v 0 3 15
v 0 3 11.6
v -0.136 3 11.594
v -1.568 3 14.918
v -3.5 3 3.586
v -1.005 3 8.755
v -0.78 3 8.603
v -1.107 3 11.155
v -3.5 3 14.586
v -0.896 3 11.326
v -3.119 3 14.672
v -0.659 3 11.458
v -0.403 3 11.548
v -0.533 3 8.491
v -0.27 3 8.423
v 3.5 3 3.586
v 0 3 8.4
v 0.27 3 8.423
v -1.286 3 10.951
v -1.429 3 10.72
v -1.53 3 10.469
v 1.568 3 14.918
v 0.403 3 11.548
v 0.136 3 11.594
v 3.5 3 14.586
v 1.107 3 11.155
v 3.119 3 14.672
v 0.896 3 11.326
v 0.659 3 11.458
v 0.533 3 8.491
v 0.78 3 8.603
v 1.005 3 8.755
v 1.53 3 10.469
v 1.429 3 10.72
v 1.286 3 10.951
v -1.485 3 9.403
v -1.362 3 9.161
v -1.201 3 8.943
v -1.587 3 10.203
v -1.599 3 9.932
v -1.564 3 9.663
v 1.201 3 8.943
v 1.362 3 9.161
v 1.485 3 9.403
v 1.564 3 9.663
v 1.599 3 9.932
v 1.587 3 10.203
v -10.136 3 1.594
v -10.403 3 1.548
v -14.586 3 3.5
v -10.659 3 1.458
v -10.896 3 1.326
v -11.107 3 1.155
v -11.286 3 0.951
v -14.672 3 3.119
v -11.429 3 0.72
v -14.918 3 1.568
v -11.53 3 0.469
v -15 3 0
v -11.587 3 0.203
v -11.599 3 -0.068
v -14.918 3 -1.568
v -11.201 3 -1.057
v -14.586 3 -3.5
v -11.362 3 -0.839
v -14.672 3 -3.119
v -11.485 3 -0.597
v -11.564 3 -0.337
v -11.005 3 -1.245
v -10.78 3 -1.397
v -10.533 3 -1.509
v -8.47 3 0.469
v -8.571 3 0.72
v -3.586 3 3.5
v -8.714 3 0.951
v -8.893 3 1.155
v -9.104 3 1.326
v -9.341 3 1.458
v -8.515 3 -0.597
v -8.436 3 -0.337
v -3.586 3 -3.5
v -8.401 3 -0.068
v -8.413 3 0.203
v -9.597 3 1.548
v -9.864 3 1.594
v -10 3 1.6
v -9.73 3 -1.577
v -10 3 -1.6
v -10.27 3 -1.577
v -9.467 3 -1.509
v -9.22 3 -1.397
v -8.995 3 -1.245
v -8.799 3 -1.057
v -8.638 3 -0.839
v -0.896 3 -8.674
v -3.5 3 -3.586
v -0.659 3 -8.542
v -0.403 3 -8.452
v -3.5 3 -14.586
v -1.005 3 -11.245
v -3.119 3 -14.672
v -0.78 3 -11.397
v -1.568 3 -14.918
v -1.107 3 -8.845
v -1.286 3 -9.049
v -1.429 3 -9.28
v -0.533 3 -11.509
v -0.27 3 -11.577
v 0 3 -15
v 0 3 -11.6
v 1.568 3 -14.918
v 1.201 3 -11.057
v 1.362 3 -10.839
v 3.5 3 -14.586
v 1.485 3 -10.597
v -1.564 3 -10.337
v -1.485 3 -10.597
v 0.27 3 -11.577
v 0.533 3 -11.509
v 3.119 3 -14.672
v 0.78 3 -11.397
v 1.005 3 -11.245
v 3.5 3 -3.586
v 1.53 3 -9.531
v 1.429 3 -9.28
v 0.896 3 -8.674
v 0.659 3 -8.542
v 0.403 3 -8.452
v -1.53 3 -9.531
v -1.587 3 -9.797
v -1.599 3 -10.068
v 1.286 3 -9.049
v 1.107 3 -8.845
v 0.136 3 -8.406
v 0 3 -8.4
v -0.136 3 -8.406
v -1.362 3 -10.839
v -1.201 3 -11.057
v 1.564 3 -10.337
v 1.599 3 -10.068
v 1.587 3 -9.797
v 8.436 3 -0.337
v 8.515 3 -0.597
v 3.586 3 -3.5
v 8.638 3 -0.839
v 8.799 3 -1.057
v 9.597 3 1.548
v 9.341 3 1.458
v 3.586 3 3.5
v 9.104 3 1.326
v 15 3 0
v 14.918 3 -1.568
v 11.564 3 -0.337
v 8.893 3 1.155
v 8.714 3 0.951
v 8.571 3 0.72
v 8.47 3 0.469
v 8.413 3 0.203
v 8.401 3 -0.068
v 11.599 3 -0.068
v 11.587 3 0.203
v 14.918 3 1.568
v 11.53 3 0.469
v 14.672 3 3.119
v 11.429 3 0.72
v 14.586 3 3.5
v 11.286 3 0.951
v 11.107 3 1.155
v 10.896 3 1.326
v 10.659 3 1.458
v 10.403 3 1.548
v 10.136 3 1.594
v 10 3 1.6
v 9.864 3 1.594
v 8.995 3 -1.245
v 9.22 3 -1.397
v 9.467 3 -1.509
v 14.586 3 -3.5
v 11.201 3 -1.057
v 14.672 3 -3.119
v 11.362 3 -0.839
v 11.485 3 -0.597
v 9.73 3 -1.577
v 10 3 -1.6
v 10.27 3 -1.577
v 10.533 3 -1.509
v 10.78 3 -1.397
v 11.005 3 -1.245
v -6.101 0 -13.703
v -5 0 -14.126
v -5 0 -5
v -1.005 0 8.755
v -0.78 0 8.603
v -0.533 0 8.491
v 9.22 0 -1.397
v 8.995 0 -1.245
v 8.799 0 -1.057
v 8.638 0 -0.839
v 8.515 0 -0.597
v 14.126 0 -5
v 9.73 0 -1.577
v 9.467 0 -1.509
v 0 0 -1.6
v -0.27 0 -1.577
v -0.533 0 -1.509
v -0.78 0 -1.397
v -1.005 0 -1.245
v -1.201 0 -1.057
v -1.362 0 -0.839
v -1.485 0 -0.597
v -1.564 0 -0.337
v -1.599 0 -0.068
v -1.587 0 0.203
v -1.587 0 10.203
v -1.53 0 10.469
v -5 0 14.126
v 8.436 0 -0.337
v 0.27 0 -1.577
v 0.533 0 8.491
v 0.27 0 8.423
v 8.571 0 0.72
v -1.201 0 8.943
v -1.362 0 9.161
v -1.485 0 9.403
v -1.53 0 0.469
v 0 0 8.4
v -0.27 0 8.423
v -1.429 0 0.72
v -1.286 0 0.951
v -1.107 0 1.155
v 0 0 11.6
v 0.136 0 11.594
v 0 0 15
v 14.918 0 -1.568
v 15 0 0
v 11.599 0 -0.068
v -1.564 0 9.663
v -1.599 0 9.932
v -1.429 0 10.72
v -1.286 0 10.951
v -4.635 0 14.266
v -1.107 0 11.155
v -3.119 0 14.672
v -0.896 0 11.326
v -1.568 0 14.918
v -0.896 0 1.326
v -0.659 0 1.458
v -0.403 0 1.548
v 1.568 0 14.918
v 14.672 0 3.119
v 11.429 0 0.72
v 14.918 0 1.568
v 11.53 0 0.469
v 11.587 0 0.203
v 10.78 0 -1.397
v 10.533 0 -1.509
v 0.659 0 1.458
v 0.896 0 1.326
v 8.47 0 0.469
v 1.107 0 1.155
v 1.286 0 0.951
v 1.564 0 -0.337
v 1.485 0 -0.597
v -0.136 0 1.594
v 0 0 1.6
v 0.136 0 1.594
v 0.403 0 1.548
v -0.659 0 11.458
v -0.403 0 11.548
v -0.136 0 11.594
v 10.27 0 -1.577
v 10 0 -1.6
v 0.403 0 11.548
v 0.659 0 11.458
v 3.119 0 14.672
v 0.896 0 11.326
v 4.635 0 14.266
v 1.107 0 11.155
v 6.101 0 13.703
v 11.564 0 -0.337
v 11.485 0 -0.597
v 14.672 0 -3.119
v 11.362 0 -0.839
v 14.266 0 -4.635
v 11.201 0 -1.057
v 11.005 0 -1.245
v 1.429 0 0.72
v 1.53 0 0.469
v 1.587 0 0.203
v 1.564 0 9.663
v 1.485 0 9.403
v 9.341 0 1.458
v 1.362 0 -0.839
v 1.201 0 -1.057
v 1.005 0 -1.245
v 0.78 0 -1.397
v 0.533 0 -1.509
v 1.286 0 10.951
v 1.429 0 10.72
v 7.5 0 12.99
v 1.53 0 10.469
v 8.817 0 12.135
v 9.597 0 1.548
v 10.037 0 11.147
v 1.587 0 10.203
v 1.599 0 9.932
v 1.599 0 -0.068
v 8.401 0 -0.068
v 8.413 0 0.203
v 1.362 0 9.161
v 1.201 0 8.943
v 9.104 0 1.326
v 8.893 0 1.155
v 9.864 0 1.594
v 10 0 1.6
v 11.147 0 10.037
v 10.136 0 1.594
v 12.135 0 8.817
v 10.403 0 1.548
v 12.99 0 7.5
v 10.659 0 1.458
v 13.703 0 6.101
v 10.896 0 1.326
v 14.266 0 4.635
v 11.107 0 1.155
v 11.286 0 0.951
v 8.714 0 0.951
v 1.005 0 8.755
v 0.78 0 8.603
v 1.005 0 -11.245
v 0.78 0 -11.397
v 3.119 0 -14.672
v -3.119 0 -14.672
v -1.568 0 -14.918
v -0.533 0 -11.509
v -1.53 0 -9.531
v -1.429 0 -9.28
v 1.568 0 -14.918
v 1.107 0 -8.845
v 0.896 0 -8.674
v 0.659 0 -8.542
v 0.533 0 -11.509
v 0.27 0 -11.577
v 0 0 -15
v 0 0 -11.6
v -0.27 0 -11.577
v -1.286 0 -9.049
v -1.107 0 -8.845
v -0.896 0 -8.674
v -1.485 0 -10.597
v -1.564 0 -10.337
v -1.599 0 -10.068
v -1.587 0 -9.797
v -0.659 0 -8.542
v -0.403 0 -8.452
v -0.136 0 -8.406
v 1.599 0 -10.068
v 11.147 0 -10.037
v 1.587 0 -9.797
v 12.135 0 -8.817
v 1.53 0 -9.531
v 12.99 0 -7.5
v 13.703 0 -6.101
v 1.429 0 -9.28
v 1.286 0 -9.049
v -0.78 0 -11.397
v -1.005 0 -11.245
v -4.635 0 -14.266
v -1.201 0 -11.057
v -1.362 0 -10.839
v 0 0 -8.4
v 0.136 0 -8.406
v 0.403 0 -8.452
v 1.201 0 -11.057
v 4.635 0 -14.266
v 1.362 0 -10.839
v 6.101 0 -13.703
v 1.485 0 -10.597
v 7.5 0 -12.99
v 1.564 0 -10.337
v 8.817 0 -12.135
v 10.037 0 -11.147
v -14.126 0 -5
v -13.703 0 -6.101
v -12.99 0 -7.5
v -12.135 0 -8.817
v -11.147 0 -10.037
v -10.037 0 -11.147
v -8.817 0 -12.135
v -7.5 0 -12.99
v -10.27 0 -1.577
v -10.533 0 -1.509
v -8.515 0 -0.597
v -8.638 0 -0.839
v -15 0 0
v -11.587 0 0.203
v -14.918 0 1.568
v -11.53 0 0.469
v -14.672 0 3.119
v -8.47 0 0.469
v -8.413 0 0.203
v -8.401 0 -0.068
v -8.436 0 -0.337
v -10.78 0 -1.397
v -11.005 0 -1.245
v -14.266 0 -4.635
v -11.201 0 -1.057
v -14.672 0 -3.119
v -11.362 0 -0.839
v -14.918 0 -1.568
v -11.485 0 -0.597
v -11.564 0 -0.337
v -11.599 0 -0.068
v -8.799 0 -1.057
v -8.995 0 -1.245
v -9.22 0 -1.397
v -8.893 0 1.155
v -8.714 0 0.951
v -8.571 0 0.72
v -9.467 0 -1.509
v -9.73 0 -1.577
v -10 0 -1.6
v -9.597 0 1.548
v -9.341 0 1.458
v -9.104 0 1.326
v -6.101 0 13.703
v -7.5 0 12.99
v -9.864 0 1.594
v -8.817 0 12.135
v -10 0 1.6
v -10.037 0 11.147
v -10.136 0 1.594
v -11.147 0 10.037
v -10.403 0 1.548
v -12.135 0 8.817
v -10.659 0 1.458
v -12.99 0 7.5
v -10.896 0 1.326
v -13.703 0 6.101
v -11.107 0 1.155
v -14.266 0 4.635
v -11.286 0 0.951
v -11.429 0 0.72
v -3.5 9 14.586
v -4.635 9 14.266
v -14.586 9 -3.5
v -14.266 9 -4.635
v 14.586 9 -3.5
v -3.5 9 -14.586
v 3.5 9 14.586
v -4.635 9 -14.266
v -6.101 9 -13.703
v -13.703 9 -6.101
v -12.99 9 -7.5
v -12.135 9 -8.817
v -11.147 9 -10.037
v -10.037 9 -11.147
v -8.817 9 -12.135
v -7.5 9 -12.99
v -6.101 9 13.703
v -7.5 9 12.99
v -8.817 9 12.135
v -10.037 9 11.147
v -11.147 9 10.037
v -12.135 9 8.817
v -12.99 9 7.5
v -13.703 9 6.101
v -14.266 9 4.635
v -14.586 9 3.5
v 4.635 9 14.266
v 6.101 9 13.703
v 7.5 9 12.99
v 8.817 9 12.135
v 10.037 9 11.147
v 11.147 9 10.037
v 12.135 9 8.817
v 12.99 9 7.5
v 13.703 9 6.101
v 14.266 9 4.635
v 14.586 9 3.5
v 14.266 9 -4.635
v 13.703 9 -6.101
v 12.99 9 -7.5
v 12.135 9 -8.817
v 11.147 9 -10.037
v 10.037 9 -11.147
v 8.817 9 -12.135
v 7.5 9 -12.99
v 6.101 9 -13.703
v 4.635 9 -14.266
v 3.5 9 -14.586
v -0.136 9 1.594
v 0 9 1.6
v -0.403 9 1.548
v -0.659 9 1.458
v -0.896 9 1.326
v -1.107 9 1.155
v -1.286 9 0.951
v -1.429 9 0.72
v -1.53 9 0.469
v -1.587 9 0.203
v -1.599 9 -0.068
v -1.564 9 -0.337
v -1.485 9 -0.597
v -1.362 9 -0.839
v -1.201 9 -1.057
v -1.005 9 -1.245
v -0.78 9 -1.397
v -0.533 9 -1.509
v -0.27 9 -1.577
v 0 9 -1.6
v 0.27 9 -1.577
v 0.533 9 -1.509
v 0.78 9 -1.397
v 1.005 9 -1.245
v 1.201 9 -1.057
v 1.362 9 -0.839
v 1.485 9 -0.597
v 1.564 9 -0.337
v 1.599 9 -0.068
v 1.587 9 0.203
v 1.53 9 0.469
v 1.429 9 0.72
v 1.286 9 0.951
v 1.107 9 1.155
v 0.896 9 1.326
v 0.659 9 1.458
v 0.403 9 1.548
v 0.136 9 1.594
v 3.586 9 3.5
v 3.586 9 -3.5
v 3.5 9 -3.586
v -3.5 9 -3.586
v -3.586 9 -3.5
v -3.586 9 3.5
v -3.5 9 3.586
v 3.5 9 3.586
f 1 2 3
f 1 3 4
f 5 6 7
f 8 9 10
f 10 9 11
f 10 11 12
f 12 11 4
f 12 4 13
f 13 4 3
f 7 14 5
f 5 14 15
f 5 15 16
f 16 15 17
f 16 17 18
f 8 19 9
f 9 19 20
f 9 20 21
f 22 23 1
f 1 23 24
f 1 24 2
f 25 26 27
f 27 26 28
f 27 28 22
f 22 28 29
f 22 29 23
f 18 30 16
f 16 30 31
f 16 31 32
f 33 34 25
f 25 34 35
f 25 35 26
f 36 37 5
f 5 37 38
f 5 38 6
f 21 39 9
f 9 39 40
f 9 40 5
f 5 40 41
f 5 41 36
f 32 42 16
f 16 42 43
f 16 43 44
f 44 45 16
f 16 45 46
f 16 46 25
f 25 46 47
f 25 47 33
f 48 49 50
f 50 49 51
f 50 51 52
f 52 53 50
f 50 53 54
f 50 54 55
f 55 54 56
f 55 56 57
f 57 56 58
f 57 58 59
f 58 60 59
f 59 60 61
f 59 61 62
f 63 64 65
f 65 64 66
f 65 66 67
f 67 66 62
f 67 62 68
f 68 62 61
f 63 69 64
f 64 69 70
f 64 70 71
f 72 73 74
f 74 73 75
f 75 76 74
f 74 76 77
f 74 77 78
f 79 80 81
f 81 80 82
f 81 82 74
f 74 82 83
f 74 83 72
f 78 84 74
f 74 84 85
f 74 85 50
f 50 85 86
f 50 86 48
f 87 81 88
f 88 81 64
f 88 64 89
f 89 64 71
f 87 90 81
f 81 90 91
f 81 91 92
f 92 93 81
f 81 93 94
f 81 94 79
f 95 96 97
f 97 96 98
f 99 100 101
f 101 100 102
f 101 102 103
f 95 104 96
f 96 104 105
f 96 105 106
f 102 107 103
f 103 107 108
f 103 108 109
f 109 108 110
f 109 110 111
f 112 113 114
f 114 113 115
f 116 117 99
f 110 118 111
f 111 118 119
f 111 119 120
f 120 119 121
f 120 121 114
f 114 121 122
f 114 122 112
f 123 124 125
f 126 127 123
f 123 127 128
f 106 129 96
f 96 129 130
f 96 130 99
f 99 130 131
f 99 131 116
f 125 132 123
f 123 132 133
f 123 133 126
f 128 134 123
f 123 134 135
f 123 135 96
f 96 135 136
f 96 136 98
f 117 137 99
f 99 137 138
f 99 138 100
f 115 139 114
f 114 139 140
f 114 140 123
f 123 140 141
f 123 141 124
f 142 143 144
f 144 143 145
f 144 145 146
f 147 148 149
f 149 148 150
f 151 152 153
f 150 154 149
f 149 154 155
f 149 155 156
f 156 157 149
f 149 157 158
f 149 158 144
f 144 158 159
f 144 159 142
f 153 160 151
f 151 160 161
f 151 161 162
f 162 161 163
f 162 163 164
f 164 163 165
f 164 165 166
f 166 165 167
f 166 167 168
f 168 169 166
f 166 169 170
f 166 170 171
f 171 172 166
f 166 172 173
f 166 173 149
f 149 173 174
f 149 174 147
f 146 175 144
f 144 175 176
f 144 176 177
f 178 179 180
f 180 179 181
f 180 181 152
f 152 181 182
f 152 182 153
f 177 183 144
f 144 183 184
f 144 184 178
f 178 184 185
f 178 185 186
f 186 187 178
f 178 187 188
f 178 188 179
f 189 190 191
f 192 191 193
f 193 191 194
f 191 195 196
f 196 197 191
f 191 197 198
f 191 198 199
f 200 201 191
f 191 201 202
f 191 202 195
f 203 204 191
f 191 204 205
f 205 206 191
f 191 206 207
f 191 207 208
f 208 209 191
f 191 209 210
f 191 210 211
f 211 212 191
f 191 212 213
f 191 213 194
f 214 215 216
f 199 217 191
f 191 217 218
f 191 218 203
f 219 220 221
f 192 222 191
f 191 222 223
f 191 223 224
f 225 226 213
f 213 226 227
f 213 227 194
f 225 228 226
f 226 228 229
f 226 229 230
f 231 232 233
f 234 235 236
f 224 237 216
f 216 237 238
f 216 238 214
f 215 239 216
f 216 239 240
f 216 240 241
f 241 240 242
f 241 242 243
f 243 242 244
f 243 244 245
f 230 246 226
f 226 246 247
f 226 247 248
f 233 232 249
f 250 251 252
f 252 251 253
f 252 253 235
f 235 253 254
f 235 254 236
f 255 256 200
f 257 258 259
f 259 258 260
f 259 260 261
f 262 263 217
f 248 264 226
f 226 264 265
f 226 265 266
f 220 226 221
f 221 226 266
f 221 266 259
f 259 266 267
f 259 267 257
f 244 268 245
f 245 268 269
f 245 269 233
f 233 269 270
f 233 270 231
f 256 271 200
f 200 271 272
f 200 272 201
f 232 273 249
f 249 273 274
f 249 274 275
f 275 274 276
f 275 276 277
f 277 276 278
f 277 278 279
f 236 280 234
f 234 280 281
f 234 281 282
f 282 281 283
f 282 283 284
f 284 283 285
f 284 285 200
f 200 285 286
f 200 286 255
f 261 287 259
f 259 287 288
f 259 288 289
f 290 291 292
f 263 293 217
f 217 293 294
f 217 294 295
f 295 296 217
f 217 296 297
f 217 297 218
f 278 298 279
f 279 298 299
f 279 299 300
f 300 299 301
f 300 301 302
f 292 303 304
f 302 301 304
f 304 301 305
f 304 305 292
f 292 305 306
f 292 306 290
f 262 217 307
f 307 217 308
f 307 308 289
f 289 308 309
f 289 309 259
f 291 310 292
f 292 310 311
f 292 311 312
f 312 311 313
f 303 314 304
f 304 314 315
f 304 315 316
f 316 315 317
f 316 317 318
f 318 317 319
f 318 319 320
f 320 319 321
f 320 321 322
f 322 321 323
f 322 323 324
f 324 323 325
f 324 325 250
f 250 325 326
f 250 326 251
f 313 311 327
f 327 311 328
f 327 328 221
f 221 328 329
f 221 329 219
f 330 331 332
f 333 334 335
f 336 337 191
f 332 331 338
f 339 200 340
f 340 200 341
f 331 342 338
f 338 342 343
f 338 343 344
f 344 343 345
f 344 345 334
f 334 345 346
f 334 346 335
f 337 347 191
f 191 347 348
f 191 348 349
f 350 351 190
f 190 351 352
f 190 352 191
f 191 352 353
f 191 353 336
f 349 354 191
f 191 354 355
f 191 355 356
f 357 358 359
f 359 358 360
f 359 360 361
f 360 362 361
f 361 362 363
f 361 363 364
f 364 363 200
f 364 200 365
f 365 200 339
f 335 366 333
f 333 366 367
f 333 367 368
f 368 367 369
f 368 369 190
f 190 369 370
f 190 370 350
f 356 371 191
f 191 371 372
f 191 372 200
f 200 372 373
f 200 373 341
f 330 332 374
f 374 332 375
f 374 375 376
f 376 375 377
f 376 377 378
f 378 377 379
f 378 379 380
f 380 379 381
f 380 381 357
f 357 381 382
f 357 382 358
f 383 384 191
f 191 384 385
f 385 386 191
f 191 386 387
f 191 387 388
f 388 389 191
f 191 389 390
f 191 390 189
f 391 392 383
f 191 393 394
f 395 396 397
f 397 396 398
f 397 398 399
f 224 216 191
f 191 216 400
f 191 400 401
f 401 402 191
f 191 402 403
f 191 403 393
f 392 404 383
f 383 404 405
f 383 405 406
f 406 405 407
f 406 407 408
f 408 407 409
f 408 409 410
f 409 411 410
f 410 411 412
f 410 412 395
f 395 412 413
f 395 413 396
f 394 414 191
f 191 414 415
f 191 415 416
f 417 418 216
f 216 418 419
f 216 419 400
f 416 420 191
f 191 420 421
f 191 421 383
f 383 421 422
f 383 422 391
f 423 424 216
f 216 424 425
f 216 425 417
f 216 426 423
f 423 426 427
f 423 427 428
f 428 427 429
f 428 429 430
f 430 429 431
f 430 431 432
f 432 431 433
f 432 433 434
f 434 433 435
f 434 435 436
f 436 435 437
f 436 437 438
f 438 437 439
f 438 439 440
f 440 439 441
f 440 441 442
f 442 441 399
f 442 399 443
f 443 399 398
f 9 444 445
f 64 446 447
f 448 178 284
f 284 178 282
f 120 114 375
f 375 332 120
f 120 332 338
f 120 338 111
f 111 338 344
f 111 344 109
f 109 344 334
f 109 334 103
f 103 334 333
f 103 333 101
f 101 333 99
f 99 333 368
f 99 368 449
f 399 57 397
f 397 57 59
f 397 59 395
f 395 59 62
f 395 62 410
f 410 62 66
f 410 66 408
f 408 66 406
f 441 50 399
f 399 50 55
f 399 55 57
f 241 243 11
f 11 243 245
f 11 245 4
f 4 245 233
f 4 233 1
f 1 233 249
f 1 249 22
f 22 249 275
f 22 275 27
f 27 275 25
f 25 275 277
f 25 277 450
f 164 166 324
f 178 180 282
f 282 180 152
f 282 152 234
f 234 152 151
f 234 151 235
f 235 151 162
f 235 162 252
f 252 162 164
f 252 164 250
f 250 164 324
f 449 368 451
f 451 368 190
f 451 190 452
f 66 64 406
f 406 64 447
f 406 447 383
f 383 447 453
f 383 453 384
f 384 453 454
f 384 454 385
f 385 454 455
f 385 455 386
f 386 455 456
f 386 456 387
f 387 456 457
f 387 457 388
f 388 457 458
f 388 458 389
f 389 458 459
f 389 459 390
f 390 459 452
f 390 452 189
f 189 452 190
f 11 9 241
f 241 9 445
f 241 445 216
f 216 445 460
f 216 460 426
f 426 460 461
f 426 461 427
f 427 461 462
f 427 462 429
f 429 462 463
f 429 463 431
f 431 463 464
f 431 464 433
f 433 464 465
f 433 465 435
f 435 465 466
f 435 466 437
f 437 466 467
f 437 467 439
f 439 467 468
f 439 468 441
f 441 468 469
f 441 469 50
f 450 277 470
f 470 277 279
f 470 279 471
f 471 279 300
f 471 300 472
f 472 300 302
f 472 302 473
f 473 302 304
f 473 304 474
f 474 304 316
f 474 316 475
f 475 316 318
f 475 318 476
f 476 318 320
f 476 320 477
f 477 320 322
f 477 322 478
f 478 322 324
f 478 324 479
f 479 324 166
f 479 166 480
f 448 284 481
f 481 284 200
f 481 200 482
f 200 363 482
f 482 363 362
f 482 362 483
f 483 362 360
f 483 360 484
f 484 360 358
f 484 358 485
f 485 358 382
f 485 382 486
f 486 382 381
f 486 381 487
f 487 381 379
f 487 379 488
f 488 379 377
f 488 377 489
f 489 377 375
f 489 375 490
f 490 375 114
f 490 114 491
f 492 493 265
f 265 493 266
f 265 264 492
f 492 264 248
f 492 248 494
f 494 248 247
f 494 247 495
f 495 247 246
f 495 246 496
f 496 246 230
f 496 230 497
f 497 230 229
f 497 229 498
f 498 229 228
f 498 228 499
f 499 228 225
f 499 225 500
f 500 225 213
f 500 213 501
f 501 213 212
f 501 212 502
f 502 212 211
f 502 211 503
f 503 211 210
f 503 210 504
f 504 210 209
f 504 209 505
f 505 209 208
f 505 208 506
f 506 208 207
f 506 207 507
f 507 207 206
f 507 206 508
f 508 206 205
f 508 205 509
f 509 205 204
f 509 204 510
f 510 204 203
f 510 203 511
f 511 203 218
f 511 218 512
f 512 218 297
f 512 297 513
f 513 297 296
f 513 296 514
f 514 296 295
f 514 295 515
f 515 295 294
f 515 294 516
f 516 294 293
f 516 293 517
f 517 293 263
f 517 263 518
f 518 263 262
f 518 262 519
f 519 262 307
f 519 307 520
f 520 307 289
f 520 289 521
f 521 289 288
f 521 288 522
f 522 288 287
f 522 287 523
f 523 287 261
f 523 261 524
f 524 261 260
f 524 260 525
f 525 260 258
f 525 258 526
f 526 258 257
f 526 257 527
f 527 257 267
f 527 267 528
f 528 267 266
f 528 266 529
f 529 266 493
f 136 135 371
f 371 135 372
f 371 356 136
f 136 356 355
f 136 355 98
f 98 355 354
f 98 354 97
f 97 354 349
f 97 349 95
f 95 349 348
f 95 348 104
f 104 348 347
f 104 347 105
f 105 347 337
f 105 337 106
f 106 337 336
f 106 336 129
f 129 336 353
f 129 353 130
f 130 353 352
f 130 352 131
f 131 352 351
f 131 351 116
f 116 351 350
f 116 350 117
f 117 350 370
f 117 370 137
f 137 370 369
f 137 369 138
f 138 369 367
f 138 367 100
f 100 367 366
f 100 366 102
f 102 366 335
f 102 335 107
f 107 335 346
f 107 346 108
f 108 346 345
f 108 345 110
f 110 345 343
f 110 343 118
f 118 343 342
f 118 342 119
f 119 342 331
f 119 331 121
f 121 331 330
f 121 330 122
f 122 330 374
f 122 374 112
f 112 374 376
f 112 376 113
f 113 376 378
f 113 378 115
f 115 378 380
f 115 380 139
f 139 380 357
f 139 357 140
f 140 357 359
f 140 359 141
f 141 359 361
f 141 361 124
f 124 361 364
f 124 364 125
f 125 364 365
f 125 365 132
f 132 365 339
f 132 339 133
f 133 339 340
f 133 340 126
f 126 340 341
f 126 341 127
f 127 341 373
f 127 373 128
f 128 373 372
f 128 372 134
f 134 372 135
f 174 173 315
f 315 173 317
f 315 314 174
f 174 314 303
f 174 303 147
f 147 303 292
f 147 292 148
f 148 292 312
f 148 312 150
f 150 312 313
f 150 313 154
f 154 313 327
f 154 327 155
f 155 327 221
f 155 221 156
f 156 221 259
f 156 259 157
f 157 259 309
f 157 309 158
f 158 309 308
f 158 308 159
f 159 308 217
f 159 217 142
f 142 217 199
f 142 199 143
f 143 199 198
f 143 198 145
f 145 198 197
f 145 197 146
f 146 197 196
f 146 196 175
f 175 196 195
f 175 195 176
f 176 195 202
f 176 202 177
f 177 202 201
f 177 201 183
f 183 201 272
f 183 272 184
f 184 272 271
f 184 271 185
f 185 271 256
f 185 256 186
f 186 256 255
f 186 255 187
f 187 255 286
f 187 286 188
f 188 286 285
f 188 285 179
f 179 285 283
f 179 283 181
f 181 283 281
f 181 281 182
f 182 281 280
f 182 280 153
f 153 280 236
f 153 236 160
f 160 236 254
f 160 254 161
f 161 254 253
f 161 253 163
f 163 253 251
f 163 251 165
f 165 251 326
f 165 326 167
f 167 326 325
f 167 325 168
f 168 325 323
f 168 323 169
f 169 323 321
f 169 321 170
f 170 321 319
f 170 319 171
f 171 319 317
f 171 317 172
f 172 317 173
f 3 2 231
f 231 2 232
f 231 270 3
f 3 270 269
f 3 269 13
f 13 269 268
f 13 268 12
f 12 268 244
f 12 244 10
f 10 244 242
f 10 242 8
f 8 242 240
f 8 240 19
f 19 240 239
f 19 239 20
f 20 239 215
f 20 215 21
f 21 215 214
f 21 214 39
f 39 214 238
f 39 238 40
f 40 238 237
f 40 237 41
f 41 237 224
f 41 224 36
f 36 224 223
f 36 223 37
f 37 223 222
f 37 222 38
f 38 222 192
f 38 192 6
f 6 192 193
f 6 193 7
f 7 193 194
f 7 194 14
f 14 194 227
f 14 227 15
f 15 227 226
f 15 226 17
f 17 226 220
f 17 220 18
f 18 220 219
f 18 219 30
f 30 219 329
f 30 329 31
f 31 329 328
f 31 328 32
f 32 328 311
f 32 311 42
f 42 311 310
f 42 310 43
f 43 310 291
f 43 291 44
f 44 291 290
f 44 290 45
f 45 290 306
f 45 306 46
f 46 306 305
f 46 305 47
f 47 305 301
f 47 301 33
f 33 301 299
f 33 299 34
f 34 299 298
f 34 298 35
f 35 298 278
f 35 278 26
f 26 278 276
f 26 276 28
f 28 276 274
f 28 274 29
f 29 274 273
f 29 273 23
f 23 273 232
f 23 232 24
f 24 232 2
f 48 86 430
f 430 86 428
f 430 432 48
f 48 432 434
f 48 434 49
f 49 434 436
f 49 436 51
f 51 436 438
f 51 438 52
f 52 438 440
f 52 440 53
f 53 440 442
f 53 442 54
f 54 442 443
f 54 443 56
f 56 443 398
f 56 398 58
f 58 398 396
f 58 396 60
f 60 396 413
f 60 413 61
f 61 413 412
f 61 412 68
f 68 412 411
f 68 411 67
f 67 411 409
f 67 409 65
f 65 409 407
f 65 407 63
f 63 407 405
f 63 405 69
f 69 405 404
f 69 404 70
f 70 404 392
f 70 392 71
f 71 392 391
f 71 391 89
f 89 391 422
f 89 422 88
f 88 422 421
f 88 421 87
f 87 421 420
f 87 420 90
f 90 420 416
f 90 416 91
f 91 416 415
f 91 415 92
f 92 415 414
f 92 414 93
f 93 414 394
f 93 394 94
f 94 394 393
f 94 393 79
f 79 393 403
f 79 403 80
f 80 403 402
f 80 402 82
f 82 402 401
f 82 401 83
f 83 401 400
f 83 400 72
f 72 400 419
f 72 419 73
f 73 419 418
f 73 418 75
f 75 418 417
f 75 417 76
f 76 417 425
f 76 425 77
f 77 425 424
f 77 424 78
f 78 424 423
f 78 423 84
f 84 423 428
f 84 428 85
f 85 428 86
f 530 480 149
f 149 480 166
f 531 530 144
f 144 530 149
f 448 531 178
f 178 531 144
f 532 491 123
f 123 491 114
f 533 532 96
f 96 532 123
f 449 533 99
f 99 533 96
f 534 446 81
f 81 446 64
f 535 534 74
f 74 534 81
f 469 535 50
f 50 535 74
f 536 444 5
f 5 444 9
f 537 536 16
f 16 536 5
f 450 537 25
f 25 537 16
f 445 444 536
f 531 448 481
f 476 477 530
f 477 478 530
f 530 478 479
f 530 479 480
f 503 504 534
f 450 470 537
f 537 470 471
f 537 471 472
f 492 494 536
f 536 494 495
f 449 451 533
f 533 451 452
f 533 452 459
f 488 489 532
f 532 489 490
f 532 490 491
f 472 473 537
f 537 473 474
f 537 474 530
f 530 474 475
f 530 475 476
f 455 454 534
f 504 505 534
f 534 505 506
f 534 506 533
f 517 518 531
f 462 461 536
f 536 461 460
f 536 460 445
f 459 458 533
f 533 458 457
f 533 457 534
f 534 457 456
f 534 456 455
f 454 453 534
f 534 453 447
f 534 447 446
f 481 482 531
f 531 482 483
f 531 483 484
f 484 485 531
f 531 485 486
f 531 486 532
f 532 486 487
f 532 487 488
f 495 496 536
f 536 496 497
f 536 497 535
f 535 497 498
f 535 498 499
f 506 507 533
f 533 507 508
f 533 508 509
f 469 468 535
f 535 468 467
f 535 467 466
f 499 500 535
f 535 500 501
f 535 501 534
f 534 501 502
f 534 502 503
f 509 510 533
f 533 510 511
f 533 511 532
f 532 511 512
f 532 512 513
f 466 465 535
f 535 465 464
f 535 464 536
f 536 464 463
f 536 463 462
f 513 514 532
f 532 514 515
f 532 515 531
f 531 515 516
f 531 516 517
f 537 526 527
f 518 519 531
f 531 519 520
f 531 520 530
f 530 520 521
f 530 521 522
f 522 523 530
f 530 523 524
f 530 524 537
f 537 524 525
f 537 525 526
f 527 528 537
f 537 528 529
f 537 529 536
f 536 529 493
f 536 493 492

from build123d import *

# Parameters (mm, degrees)
SKETCH1_R           = 15
SKETCH1_R_2         = 1.6
BOSS_EXTRUDE1_DEPTH = 3
SKETCH2_R           = 1.6
BOSS_EXTRUDE2_DEPTH = 6


with BuildPart() as part:
    # Sketch1 → Boss-Extrude1 (new body)
    with BuildSketch(Plane(origin=(0, 0, 0), x_dir=(1, 0, 0), z_dir=(0, 1, 0))):
        Circle(SKETCH1_R)
        Circle(SKETCH1_R_2, mode=Mode.SUBTRACT)
        with Locations((0, 10)):
            Circle(SKETCH1_R_2, mode=Mode.SUBTRACT)
        with Locations((10, 0)):
            Circle(SKETCH1_R_2, mode=Mode.SUBTRACT)
        with Locations((0, -10)):
            Circle(SKETCH1_R_2, mode=Mode.SUBTRACT)
        with Locations((-10, 0)):
            Circle(SKETCH1_R_2, mode=Mode.SUBTRACT)
    extrude(amount=BOSS_EXTRUDE1_DEPTH)

    # Sketch2 → Boss-Extrude2 (add)
    with BuildSketch(Plane(origin=(0, 3, 0), x_dir=(1, 0, 0), z_dir=(0, 1, 0))):
        with BuildLine():
            Line((-3.585952146, -3.5), (-14.585952146, -3.5))
            ThreePointArc((-14.585952146, -3.5), (-10.606601718, -10.606601718), (-3.5, -14.585952146))
            Line((-3.5, -14.585952146), (-3.5, -3.585952146))
            Line((-3.5, -3.585952146), (3.5, -3.585952146))
            Line((3.5, -3.585952146), (3.5, -14.585952146))
            ThreePointArc((3.5, -14.585952146), (10.606601718, -10.606601718), (14.585952146, -3.5))
            Line((14.585952146, -3.5), (3.585952146, -3.5))
            Line((3.585952146, -3.5), (3.585952146, 3.5))
            Line((3.585952146, 3.5), (14.585952146, 3.5))
            ThreePointArc((14.585952146, 3.5), (10.606601718, 10.606601718), (3.5, 14.585952146))
            Line((3.5, 14.585952146), (3.5, 3.585952146))
            Line((3.5, 3.585952146), (-3.5, 3.585952146))
            Line((-3.5, 3.585952146), (-3.5, 14.585952146))
            ThreePointArc((-3.5, 14.585952146), (-10.606601718, 10.606601718), (-14.585952146, 3.5))
            Line((-14.585952146, 3.5), (-3.585952146, 3.5))
            Line((-3.585952146, 3.5), (-3.585952146, -3.5))
        make_face()
        Circle(SKETCH2_R, mode=Mode.SUBTRACT)
    extrude(amount=BOSS_EXTRUDE2_DEPTH)


solid = part.part
